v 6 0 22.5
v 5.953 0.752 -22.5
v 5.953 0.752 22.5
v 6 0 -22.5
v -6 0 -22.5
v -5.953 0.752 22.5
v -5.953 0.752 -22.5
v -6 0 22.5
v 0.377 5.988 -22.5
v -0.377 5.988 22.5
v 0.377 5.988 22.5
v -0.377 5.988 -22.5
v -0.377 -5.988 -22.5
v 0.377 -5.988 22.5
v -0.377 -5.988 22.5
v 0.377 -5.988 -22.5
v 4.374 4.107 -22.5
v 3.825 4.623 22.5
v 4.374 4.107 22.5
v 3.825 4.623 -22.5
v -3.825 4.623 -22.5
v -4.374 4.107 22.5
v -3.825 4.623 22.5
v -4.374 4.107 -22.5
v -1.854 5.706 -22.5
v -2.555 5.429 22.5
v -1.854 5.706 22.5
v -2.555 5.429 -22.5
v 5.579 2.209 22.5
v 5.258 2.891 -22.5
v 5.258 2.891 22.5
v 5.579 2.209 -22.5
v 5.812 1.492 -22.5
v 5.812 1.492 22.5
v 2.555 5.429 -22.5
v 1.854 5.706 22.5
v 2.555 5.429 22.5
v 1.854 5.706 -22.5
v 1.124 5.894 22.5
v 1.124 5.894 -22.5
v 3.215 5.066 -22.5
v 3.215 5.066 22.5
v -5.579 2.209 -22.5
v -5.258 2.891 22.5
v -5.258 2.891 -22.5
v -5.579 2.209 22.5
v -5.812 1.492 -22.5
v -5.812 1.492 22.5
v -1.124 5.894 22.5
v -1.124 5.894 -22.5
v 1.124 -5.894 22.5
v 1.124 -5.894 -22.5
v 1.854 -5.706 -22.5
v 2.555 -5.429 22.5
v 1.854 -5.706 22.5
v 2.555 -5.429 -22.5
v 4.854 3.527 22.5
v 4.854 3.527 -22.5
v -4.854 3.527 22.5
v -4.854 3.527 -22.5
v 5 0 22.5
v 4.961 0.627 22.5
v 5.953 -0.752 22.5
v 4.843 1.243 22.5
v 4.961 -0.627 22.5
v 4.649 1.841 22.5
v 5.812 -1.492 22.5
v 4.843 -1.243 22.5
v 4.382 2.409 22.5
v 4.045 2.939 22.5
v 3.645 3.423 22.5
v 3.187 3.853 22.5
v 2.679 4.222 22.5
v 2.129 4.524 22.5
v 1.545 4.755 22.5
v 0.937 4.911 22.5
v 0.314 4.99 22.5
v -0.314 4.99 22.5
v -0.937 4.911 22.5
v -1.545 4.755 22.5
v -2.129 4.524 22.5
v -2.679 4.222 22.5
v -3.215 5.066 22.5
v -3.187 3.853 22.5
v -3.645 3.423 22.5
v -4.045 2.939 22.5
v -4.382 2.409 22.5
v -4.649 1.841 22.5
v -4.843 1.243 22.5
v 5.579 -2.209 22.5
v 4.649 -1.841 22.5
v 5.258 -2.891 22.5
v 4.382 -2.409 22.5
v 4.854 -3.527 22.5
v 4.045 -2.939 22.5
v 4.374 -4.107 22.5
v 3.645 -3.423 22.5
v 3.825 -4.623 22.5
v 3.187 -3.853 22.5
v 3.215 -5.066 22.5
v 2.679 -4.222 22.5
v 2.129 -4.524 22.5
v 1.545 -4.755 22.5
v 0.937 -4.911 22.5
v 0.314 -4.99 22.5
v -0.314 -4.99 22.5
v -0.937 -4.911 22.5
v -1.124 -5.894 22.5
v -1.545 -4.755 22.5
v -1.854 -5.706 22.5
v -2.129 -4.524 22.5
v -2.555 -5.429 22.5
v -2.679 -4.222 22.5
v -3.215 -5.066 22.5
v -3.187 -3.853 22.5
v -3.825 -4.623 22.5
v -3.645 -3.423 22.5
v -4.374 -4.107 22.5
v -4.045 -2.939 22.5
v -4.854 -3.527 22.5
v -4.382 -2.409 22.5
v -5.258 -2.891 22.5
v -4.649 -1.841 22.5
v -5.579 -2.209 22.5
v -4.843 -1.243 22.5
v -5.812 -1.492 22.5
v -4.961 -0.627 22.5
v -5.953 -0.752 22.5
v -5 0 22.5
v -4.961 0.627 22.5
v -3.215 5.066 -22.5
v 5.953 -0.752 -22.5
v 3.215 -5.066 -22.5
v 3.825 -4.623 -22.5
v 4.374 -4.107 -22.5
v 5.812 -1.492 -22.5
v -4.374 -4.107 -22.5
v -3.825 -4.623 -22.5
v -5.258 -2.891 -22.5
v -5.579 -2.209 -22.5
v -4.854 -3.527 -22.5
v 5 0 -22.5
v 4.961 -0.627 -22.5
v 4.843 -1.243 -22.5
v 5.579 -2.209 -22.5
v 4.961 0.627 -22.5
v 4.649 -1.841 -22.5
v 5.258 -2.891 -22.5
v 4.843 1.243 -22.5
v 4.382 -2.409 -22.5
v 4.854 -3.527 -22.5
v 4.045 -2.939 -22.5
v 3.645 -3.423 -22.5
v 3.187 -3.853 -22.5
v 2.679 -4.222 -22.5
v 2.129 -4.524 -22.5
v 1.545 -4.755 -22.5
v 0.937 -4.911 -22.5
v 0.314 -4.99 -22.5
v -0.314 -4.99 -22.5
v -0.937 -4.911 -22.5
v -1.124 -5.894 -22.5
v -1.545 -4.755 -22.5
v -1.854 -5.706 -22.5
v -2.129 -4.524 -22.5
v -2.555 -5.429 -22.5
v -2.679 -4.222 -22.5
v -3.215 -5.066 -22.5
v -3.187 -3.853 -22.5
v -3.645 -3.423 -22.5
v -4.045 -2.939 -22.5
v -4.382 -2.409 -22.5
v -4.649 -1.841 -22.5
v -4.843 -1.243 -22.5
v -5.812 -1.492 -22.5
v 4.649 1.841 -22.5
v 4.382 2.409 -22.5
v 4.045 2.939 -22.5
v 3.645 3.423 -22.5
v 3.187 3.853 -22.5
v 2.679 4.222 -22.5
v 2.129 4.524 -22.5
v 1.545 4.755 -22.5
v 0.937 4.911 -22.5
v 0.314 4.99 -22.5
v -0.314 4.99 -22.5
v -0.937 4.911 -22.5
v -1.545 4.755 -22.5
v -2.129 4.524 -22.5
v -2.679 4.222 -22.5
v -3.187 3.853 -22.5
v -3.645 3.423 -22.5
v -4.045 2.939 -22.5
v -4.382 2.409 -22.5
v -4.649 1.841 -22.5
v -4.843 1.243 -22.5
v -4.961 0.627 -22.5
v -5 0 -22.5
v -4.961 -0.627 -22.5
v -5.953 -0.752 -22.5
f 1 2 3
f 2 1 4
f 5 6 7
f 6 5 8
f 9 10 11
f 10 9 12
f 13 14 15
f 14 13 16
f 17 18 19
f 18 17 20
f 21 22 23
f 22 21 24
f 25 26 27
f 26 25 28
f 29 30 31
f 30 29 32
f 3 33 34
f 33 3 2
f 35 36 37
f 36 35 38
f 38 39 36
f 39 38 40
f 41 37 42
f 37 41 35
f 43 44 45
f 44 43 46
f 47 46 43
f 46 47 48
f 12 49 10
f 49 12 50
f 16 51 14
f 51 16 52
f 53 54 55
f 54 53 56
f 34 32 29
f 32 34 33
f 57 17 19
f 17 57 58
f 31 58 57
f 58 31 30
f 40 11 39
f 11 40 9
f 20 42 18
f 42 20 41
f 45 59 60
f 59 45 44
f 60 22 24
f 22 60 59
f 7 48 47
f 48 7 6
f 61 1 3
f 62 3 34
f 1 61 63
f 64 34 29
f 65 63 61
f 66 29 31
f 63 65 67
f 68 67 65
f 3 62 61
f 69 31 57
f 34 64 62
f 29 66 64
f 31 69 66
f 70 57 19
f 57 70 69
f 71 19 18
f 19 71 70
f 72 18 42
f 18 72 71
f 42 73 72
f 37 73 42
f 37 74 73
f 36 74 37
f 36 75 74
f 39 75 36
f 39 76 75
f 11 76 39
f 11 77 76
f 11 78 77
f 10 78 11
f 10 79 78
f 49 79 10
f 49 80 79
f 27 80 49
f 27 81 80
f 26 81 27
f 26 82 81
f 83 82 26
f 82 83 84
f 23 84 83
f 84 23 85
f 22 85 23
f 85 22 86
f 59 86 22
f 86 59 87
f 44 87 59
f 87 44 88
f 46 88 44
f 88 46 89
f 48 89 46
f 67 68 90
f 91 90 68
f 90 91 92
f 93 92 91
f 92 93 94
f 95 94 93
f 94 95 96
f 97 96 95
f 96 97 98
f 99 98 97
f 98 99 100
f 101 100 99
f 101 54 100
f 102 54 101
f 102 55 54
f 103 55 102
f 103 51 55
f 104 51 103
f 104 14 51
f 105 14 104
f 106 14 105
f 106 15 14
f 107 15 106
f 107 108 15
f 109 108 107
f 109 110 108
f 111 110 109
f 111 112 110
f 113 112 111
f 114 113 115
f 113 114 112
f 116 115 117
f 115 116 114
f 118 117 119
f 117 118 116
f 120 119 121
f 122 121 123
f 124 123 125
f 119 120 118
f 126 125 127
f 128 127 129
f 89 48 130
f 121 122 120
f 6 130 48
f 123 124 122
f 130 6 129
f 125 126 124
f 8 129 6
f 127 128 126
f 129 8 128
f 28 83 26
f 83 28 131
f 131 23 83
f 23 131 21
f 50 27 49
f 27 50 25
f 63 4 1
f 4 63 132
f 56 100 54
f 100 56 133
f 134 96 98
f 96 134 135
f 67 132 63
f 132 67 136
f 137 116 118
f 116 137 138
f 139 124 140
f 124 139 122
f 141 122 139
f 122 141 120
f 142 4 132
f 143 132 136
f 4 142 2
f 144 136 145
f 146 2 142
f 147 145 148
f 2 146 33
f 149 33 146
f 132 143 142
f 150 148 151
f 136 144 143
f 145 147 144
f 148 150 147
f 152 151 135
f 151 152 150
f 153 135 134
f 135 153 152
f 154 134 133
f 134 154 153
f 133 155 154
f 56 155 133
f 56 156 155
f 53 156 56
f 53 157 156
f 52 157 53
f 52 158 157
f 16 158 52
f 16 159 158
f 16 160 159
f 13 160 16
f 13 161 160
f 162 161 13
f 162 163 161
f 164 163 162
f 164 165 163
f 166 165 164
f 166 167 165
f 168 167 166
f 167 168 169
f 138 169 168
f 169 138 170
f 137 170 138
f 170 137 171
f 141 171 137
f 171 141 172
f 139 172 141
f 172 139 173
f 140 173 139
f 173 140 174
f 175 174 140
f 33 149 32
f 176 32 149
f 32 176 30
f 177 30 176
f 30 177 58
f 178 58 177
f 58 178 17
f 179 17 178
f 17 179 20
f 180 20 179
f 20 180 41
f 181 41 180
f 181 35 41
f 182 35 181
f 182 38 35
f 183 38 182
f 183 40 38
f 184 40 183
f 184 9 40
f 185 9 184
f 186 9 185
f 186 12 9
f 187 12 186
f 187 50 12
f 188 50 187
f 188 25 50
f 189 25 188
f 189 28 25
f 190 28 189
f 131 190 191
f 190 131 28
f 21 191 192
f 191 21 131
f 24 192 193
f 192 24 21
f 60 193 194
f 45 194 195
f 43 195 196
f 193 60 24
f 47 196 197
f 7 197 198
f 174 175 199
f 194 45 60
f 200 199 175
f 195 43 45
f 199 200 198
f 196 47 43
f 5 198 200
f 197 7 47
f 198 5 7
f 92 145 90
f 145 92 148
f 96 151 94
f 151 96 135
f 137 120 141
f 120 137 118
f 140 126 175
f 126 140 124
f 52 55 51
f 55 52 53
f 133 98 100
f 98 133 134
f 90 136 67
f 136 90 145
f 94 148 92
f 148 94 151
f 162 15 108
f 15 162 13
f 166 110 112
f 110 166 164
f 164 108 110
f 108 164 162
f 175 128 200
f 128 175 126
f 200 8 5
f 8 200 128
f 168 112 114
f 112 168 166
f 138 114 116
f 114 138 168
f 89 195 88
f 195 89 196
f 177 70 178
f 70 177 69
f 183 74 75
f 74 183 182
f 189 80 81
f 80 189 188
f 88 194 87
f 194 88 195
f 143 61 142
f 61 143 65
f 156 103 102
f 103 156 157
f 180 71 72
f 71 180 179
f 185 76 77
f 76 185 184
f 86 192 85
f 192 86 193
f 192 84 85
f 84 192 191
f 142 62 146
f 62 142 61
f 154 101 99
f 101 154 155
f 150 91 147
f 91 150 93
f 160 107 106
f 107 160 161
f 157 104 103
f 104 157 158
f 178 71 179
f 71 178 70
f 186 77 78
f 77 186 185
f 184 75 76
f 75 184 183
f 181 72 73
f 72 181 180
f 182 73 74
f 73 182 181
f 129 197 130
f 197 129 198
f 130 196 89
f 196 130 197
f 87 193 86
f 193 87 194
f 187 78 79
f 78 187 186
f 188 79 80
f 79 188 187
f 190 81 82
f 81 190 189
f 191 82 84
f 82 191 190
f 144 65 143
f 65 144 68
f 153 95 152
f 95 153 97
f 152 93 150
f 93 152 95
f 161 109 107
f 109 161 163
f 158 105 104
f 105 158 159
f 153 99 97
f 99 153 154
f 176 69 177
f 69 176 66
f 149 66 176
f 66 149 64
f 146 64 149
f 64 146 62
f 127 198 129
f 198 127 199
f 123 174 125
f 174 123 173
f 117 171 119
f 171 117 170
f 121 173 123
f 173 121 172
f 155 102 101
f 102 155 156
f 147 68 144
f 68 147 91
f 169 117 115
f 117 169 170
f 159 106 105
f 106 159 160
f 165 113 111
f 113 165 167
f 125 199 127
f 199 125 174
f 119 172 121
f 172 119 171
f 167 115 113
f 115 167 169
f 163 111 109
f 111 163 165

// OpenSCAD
$fn = 50;


difference() {
	union() {
		translate(v = [0, 0, -22.5000000000]) {
			cylinder(h = 45, r = 6.0000000000);
		}
	}
	union() {
		translate(v = [0, 0, -100.0000000000]) {
			cylinder(h = 200, r = 5);
		}
	}
}
